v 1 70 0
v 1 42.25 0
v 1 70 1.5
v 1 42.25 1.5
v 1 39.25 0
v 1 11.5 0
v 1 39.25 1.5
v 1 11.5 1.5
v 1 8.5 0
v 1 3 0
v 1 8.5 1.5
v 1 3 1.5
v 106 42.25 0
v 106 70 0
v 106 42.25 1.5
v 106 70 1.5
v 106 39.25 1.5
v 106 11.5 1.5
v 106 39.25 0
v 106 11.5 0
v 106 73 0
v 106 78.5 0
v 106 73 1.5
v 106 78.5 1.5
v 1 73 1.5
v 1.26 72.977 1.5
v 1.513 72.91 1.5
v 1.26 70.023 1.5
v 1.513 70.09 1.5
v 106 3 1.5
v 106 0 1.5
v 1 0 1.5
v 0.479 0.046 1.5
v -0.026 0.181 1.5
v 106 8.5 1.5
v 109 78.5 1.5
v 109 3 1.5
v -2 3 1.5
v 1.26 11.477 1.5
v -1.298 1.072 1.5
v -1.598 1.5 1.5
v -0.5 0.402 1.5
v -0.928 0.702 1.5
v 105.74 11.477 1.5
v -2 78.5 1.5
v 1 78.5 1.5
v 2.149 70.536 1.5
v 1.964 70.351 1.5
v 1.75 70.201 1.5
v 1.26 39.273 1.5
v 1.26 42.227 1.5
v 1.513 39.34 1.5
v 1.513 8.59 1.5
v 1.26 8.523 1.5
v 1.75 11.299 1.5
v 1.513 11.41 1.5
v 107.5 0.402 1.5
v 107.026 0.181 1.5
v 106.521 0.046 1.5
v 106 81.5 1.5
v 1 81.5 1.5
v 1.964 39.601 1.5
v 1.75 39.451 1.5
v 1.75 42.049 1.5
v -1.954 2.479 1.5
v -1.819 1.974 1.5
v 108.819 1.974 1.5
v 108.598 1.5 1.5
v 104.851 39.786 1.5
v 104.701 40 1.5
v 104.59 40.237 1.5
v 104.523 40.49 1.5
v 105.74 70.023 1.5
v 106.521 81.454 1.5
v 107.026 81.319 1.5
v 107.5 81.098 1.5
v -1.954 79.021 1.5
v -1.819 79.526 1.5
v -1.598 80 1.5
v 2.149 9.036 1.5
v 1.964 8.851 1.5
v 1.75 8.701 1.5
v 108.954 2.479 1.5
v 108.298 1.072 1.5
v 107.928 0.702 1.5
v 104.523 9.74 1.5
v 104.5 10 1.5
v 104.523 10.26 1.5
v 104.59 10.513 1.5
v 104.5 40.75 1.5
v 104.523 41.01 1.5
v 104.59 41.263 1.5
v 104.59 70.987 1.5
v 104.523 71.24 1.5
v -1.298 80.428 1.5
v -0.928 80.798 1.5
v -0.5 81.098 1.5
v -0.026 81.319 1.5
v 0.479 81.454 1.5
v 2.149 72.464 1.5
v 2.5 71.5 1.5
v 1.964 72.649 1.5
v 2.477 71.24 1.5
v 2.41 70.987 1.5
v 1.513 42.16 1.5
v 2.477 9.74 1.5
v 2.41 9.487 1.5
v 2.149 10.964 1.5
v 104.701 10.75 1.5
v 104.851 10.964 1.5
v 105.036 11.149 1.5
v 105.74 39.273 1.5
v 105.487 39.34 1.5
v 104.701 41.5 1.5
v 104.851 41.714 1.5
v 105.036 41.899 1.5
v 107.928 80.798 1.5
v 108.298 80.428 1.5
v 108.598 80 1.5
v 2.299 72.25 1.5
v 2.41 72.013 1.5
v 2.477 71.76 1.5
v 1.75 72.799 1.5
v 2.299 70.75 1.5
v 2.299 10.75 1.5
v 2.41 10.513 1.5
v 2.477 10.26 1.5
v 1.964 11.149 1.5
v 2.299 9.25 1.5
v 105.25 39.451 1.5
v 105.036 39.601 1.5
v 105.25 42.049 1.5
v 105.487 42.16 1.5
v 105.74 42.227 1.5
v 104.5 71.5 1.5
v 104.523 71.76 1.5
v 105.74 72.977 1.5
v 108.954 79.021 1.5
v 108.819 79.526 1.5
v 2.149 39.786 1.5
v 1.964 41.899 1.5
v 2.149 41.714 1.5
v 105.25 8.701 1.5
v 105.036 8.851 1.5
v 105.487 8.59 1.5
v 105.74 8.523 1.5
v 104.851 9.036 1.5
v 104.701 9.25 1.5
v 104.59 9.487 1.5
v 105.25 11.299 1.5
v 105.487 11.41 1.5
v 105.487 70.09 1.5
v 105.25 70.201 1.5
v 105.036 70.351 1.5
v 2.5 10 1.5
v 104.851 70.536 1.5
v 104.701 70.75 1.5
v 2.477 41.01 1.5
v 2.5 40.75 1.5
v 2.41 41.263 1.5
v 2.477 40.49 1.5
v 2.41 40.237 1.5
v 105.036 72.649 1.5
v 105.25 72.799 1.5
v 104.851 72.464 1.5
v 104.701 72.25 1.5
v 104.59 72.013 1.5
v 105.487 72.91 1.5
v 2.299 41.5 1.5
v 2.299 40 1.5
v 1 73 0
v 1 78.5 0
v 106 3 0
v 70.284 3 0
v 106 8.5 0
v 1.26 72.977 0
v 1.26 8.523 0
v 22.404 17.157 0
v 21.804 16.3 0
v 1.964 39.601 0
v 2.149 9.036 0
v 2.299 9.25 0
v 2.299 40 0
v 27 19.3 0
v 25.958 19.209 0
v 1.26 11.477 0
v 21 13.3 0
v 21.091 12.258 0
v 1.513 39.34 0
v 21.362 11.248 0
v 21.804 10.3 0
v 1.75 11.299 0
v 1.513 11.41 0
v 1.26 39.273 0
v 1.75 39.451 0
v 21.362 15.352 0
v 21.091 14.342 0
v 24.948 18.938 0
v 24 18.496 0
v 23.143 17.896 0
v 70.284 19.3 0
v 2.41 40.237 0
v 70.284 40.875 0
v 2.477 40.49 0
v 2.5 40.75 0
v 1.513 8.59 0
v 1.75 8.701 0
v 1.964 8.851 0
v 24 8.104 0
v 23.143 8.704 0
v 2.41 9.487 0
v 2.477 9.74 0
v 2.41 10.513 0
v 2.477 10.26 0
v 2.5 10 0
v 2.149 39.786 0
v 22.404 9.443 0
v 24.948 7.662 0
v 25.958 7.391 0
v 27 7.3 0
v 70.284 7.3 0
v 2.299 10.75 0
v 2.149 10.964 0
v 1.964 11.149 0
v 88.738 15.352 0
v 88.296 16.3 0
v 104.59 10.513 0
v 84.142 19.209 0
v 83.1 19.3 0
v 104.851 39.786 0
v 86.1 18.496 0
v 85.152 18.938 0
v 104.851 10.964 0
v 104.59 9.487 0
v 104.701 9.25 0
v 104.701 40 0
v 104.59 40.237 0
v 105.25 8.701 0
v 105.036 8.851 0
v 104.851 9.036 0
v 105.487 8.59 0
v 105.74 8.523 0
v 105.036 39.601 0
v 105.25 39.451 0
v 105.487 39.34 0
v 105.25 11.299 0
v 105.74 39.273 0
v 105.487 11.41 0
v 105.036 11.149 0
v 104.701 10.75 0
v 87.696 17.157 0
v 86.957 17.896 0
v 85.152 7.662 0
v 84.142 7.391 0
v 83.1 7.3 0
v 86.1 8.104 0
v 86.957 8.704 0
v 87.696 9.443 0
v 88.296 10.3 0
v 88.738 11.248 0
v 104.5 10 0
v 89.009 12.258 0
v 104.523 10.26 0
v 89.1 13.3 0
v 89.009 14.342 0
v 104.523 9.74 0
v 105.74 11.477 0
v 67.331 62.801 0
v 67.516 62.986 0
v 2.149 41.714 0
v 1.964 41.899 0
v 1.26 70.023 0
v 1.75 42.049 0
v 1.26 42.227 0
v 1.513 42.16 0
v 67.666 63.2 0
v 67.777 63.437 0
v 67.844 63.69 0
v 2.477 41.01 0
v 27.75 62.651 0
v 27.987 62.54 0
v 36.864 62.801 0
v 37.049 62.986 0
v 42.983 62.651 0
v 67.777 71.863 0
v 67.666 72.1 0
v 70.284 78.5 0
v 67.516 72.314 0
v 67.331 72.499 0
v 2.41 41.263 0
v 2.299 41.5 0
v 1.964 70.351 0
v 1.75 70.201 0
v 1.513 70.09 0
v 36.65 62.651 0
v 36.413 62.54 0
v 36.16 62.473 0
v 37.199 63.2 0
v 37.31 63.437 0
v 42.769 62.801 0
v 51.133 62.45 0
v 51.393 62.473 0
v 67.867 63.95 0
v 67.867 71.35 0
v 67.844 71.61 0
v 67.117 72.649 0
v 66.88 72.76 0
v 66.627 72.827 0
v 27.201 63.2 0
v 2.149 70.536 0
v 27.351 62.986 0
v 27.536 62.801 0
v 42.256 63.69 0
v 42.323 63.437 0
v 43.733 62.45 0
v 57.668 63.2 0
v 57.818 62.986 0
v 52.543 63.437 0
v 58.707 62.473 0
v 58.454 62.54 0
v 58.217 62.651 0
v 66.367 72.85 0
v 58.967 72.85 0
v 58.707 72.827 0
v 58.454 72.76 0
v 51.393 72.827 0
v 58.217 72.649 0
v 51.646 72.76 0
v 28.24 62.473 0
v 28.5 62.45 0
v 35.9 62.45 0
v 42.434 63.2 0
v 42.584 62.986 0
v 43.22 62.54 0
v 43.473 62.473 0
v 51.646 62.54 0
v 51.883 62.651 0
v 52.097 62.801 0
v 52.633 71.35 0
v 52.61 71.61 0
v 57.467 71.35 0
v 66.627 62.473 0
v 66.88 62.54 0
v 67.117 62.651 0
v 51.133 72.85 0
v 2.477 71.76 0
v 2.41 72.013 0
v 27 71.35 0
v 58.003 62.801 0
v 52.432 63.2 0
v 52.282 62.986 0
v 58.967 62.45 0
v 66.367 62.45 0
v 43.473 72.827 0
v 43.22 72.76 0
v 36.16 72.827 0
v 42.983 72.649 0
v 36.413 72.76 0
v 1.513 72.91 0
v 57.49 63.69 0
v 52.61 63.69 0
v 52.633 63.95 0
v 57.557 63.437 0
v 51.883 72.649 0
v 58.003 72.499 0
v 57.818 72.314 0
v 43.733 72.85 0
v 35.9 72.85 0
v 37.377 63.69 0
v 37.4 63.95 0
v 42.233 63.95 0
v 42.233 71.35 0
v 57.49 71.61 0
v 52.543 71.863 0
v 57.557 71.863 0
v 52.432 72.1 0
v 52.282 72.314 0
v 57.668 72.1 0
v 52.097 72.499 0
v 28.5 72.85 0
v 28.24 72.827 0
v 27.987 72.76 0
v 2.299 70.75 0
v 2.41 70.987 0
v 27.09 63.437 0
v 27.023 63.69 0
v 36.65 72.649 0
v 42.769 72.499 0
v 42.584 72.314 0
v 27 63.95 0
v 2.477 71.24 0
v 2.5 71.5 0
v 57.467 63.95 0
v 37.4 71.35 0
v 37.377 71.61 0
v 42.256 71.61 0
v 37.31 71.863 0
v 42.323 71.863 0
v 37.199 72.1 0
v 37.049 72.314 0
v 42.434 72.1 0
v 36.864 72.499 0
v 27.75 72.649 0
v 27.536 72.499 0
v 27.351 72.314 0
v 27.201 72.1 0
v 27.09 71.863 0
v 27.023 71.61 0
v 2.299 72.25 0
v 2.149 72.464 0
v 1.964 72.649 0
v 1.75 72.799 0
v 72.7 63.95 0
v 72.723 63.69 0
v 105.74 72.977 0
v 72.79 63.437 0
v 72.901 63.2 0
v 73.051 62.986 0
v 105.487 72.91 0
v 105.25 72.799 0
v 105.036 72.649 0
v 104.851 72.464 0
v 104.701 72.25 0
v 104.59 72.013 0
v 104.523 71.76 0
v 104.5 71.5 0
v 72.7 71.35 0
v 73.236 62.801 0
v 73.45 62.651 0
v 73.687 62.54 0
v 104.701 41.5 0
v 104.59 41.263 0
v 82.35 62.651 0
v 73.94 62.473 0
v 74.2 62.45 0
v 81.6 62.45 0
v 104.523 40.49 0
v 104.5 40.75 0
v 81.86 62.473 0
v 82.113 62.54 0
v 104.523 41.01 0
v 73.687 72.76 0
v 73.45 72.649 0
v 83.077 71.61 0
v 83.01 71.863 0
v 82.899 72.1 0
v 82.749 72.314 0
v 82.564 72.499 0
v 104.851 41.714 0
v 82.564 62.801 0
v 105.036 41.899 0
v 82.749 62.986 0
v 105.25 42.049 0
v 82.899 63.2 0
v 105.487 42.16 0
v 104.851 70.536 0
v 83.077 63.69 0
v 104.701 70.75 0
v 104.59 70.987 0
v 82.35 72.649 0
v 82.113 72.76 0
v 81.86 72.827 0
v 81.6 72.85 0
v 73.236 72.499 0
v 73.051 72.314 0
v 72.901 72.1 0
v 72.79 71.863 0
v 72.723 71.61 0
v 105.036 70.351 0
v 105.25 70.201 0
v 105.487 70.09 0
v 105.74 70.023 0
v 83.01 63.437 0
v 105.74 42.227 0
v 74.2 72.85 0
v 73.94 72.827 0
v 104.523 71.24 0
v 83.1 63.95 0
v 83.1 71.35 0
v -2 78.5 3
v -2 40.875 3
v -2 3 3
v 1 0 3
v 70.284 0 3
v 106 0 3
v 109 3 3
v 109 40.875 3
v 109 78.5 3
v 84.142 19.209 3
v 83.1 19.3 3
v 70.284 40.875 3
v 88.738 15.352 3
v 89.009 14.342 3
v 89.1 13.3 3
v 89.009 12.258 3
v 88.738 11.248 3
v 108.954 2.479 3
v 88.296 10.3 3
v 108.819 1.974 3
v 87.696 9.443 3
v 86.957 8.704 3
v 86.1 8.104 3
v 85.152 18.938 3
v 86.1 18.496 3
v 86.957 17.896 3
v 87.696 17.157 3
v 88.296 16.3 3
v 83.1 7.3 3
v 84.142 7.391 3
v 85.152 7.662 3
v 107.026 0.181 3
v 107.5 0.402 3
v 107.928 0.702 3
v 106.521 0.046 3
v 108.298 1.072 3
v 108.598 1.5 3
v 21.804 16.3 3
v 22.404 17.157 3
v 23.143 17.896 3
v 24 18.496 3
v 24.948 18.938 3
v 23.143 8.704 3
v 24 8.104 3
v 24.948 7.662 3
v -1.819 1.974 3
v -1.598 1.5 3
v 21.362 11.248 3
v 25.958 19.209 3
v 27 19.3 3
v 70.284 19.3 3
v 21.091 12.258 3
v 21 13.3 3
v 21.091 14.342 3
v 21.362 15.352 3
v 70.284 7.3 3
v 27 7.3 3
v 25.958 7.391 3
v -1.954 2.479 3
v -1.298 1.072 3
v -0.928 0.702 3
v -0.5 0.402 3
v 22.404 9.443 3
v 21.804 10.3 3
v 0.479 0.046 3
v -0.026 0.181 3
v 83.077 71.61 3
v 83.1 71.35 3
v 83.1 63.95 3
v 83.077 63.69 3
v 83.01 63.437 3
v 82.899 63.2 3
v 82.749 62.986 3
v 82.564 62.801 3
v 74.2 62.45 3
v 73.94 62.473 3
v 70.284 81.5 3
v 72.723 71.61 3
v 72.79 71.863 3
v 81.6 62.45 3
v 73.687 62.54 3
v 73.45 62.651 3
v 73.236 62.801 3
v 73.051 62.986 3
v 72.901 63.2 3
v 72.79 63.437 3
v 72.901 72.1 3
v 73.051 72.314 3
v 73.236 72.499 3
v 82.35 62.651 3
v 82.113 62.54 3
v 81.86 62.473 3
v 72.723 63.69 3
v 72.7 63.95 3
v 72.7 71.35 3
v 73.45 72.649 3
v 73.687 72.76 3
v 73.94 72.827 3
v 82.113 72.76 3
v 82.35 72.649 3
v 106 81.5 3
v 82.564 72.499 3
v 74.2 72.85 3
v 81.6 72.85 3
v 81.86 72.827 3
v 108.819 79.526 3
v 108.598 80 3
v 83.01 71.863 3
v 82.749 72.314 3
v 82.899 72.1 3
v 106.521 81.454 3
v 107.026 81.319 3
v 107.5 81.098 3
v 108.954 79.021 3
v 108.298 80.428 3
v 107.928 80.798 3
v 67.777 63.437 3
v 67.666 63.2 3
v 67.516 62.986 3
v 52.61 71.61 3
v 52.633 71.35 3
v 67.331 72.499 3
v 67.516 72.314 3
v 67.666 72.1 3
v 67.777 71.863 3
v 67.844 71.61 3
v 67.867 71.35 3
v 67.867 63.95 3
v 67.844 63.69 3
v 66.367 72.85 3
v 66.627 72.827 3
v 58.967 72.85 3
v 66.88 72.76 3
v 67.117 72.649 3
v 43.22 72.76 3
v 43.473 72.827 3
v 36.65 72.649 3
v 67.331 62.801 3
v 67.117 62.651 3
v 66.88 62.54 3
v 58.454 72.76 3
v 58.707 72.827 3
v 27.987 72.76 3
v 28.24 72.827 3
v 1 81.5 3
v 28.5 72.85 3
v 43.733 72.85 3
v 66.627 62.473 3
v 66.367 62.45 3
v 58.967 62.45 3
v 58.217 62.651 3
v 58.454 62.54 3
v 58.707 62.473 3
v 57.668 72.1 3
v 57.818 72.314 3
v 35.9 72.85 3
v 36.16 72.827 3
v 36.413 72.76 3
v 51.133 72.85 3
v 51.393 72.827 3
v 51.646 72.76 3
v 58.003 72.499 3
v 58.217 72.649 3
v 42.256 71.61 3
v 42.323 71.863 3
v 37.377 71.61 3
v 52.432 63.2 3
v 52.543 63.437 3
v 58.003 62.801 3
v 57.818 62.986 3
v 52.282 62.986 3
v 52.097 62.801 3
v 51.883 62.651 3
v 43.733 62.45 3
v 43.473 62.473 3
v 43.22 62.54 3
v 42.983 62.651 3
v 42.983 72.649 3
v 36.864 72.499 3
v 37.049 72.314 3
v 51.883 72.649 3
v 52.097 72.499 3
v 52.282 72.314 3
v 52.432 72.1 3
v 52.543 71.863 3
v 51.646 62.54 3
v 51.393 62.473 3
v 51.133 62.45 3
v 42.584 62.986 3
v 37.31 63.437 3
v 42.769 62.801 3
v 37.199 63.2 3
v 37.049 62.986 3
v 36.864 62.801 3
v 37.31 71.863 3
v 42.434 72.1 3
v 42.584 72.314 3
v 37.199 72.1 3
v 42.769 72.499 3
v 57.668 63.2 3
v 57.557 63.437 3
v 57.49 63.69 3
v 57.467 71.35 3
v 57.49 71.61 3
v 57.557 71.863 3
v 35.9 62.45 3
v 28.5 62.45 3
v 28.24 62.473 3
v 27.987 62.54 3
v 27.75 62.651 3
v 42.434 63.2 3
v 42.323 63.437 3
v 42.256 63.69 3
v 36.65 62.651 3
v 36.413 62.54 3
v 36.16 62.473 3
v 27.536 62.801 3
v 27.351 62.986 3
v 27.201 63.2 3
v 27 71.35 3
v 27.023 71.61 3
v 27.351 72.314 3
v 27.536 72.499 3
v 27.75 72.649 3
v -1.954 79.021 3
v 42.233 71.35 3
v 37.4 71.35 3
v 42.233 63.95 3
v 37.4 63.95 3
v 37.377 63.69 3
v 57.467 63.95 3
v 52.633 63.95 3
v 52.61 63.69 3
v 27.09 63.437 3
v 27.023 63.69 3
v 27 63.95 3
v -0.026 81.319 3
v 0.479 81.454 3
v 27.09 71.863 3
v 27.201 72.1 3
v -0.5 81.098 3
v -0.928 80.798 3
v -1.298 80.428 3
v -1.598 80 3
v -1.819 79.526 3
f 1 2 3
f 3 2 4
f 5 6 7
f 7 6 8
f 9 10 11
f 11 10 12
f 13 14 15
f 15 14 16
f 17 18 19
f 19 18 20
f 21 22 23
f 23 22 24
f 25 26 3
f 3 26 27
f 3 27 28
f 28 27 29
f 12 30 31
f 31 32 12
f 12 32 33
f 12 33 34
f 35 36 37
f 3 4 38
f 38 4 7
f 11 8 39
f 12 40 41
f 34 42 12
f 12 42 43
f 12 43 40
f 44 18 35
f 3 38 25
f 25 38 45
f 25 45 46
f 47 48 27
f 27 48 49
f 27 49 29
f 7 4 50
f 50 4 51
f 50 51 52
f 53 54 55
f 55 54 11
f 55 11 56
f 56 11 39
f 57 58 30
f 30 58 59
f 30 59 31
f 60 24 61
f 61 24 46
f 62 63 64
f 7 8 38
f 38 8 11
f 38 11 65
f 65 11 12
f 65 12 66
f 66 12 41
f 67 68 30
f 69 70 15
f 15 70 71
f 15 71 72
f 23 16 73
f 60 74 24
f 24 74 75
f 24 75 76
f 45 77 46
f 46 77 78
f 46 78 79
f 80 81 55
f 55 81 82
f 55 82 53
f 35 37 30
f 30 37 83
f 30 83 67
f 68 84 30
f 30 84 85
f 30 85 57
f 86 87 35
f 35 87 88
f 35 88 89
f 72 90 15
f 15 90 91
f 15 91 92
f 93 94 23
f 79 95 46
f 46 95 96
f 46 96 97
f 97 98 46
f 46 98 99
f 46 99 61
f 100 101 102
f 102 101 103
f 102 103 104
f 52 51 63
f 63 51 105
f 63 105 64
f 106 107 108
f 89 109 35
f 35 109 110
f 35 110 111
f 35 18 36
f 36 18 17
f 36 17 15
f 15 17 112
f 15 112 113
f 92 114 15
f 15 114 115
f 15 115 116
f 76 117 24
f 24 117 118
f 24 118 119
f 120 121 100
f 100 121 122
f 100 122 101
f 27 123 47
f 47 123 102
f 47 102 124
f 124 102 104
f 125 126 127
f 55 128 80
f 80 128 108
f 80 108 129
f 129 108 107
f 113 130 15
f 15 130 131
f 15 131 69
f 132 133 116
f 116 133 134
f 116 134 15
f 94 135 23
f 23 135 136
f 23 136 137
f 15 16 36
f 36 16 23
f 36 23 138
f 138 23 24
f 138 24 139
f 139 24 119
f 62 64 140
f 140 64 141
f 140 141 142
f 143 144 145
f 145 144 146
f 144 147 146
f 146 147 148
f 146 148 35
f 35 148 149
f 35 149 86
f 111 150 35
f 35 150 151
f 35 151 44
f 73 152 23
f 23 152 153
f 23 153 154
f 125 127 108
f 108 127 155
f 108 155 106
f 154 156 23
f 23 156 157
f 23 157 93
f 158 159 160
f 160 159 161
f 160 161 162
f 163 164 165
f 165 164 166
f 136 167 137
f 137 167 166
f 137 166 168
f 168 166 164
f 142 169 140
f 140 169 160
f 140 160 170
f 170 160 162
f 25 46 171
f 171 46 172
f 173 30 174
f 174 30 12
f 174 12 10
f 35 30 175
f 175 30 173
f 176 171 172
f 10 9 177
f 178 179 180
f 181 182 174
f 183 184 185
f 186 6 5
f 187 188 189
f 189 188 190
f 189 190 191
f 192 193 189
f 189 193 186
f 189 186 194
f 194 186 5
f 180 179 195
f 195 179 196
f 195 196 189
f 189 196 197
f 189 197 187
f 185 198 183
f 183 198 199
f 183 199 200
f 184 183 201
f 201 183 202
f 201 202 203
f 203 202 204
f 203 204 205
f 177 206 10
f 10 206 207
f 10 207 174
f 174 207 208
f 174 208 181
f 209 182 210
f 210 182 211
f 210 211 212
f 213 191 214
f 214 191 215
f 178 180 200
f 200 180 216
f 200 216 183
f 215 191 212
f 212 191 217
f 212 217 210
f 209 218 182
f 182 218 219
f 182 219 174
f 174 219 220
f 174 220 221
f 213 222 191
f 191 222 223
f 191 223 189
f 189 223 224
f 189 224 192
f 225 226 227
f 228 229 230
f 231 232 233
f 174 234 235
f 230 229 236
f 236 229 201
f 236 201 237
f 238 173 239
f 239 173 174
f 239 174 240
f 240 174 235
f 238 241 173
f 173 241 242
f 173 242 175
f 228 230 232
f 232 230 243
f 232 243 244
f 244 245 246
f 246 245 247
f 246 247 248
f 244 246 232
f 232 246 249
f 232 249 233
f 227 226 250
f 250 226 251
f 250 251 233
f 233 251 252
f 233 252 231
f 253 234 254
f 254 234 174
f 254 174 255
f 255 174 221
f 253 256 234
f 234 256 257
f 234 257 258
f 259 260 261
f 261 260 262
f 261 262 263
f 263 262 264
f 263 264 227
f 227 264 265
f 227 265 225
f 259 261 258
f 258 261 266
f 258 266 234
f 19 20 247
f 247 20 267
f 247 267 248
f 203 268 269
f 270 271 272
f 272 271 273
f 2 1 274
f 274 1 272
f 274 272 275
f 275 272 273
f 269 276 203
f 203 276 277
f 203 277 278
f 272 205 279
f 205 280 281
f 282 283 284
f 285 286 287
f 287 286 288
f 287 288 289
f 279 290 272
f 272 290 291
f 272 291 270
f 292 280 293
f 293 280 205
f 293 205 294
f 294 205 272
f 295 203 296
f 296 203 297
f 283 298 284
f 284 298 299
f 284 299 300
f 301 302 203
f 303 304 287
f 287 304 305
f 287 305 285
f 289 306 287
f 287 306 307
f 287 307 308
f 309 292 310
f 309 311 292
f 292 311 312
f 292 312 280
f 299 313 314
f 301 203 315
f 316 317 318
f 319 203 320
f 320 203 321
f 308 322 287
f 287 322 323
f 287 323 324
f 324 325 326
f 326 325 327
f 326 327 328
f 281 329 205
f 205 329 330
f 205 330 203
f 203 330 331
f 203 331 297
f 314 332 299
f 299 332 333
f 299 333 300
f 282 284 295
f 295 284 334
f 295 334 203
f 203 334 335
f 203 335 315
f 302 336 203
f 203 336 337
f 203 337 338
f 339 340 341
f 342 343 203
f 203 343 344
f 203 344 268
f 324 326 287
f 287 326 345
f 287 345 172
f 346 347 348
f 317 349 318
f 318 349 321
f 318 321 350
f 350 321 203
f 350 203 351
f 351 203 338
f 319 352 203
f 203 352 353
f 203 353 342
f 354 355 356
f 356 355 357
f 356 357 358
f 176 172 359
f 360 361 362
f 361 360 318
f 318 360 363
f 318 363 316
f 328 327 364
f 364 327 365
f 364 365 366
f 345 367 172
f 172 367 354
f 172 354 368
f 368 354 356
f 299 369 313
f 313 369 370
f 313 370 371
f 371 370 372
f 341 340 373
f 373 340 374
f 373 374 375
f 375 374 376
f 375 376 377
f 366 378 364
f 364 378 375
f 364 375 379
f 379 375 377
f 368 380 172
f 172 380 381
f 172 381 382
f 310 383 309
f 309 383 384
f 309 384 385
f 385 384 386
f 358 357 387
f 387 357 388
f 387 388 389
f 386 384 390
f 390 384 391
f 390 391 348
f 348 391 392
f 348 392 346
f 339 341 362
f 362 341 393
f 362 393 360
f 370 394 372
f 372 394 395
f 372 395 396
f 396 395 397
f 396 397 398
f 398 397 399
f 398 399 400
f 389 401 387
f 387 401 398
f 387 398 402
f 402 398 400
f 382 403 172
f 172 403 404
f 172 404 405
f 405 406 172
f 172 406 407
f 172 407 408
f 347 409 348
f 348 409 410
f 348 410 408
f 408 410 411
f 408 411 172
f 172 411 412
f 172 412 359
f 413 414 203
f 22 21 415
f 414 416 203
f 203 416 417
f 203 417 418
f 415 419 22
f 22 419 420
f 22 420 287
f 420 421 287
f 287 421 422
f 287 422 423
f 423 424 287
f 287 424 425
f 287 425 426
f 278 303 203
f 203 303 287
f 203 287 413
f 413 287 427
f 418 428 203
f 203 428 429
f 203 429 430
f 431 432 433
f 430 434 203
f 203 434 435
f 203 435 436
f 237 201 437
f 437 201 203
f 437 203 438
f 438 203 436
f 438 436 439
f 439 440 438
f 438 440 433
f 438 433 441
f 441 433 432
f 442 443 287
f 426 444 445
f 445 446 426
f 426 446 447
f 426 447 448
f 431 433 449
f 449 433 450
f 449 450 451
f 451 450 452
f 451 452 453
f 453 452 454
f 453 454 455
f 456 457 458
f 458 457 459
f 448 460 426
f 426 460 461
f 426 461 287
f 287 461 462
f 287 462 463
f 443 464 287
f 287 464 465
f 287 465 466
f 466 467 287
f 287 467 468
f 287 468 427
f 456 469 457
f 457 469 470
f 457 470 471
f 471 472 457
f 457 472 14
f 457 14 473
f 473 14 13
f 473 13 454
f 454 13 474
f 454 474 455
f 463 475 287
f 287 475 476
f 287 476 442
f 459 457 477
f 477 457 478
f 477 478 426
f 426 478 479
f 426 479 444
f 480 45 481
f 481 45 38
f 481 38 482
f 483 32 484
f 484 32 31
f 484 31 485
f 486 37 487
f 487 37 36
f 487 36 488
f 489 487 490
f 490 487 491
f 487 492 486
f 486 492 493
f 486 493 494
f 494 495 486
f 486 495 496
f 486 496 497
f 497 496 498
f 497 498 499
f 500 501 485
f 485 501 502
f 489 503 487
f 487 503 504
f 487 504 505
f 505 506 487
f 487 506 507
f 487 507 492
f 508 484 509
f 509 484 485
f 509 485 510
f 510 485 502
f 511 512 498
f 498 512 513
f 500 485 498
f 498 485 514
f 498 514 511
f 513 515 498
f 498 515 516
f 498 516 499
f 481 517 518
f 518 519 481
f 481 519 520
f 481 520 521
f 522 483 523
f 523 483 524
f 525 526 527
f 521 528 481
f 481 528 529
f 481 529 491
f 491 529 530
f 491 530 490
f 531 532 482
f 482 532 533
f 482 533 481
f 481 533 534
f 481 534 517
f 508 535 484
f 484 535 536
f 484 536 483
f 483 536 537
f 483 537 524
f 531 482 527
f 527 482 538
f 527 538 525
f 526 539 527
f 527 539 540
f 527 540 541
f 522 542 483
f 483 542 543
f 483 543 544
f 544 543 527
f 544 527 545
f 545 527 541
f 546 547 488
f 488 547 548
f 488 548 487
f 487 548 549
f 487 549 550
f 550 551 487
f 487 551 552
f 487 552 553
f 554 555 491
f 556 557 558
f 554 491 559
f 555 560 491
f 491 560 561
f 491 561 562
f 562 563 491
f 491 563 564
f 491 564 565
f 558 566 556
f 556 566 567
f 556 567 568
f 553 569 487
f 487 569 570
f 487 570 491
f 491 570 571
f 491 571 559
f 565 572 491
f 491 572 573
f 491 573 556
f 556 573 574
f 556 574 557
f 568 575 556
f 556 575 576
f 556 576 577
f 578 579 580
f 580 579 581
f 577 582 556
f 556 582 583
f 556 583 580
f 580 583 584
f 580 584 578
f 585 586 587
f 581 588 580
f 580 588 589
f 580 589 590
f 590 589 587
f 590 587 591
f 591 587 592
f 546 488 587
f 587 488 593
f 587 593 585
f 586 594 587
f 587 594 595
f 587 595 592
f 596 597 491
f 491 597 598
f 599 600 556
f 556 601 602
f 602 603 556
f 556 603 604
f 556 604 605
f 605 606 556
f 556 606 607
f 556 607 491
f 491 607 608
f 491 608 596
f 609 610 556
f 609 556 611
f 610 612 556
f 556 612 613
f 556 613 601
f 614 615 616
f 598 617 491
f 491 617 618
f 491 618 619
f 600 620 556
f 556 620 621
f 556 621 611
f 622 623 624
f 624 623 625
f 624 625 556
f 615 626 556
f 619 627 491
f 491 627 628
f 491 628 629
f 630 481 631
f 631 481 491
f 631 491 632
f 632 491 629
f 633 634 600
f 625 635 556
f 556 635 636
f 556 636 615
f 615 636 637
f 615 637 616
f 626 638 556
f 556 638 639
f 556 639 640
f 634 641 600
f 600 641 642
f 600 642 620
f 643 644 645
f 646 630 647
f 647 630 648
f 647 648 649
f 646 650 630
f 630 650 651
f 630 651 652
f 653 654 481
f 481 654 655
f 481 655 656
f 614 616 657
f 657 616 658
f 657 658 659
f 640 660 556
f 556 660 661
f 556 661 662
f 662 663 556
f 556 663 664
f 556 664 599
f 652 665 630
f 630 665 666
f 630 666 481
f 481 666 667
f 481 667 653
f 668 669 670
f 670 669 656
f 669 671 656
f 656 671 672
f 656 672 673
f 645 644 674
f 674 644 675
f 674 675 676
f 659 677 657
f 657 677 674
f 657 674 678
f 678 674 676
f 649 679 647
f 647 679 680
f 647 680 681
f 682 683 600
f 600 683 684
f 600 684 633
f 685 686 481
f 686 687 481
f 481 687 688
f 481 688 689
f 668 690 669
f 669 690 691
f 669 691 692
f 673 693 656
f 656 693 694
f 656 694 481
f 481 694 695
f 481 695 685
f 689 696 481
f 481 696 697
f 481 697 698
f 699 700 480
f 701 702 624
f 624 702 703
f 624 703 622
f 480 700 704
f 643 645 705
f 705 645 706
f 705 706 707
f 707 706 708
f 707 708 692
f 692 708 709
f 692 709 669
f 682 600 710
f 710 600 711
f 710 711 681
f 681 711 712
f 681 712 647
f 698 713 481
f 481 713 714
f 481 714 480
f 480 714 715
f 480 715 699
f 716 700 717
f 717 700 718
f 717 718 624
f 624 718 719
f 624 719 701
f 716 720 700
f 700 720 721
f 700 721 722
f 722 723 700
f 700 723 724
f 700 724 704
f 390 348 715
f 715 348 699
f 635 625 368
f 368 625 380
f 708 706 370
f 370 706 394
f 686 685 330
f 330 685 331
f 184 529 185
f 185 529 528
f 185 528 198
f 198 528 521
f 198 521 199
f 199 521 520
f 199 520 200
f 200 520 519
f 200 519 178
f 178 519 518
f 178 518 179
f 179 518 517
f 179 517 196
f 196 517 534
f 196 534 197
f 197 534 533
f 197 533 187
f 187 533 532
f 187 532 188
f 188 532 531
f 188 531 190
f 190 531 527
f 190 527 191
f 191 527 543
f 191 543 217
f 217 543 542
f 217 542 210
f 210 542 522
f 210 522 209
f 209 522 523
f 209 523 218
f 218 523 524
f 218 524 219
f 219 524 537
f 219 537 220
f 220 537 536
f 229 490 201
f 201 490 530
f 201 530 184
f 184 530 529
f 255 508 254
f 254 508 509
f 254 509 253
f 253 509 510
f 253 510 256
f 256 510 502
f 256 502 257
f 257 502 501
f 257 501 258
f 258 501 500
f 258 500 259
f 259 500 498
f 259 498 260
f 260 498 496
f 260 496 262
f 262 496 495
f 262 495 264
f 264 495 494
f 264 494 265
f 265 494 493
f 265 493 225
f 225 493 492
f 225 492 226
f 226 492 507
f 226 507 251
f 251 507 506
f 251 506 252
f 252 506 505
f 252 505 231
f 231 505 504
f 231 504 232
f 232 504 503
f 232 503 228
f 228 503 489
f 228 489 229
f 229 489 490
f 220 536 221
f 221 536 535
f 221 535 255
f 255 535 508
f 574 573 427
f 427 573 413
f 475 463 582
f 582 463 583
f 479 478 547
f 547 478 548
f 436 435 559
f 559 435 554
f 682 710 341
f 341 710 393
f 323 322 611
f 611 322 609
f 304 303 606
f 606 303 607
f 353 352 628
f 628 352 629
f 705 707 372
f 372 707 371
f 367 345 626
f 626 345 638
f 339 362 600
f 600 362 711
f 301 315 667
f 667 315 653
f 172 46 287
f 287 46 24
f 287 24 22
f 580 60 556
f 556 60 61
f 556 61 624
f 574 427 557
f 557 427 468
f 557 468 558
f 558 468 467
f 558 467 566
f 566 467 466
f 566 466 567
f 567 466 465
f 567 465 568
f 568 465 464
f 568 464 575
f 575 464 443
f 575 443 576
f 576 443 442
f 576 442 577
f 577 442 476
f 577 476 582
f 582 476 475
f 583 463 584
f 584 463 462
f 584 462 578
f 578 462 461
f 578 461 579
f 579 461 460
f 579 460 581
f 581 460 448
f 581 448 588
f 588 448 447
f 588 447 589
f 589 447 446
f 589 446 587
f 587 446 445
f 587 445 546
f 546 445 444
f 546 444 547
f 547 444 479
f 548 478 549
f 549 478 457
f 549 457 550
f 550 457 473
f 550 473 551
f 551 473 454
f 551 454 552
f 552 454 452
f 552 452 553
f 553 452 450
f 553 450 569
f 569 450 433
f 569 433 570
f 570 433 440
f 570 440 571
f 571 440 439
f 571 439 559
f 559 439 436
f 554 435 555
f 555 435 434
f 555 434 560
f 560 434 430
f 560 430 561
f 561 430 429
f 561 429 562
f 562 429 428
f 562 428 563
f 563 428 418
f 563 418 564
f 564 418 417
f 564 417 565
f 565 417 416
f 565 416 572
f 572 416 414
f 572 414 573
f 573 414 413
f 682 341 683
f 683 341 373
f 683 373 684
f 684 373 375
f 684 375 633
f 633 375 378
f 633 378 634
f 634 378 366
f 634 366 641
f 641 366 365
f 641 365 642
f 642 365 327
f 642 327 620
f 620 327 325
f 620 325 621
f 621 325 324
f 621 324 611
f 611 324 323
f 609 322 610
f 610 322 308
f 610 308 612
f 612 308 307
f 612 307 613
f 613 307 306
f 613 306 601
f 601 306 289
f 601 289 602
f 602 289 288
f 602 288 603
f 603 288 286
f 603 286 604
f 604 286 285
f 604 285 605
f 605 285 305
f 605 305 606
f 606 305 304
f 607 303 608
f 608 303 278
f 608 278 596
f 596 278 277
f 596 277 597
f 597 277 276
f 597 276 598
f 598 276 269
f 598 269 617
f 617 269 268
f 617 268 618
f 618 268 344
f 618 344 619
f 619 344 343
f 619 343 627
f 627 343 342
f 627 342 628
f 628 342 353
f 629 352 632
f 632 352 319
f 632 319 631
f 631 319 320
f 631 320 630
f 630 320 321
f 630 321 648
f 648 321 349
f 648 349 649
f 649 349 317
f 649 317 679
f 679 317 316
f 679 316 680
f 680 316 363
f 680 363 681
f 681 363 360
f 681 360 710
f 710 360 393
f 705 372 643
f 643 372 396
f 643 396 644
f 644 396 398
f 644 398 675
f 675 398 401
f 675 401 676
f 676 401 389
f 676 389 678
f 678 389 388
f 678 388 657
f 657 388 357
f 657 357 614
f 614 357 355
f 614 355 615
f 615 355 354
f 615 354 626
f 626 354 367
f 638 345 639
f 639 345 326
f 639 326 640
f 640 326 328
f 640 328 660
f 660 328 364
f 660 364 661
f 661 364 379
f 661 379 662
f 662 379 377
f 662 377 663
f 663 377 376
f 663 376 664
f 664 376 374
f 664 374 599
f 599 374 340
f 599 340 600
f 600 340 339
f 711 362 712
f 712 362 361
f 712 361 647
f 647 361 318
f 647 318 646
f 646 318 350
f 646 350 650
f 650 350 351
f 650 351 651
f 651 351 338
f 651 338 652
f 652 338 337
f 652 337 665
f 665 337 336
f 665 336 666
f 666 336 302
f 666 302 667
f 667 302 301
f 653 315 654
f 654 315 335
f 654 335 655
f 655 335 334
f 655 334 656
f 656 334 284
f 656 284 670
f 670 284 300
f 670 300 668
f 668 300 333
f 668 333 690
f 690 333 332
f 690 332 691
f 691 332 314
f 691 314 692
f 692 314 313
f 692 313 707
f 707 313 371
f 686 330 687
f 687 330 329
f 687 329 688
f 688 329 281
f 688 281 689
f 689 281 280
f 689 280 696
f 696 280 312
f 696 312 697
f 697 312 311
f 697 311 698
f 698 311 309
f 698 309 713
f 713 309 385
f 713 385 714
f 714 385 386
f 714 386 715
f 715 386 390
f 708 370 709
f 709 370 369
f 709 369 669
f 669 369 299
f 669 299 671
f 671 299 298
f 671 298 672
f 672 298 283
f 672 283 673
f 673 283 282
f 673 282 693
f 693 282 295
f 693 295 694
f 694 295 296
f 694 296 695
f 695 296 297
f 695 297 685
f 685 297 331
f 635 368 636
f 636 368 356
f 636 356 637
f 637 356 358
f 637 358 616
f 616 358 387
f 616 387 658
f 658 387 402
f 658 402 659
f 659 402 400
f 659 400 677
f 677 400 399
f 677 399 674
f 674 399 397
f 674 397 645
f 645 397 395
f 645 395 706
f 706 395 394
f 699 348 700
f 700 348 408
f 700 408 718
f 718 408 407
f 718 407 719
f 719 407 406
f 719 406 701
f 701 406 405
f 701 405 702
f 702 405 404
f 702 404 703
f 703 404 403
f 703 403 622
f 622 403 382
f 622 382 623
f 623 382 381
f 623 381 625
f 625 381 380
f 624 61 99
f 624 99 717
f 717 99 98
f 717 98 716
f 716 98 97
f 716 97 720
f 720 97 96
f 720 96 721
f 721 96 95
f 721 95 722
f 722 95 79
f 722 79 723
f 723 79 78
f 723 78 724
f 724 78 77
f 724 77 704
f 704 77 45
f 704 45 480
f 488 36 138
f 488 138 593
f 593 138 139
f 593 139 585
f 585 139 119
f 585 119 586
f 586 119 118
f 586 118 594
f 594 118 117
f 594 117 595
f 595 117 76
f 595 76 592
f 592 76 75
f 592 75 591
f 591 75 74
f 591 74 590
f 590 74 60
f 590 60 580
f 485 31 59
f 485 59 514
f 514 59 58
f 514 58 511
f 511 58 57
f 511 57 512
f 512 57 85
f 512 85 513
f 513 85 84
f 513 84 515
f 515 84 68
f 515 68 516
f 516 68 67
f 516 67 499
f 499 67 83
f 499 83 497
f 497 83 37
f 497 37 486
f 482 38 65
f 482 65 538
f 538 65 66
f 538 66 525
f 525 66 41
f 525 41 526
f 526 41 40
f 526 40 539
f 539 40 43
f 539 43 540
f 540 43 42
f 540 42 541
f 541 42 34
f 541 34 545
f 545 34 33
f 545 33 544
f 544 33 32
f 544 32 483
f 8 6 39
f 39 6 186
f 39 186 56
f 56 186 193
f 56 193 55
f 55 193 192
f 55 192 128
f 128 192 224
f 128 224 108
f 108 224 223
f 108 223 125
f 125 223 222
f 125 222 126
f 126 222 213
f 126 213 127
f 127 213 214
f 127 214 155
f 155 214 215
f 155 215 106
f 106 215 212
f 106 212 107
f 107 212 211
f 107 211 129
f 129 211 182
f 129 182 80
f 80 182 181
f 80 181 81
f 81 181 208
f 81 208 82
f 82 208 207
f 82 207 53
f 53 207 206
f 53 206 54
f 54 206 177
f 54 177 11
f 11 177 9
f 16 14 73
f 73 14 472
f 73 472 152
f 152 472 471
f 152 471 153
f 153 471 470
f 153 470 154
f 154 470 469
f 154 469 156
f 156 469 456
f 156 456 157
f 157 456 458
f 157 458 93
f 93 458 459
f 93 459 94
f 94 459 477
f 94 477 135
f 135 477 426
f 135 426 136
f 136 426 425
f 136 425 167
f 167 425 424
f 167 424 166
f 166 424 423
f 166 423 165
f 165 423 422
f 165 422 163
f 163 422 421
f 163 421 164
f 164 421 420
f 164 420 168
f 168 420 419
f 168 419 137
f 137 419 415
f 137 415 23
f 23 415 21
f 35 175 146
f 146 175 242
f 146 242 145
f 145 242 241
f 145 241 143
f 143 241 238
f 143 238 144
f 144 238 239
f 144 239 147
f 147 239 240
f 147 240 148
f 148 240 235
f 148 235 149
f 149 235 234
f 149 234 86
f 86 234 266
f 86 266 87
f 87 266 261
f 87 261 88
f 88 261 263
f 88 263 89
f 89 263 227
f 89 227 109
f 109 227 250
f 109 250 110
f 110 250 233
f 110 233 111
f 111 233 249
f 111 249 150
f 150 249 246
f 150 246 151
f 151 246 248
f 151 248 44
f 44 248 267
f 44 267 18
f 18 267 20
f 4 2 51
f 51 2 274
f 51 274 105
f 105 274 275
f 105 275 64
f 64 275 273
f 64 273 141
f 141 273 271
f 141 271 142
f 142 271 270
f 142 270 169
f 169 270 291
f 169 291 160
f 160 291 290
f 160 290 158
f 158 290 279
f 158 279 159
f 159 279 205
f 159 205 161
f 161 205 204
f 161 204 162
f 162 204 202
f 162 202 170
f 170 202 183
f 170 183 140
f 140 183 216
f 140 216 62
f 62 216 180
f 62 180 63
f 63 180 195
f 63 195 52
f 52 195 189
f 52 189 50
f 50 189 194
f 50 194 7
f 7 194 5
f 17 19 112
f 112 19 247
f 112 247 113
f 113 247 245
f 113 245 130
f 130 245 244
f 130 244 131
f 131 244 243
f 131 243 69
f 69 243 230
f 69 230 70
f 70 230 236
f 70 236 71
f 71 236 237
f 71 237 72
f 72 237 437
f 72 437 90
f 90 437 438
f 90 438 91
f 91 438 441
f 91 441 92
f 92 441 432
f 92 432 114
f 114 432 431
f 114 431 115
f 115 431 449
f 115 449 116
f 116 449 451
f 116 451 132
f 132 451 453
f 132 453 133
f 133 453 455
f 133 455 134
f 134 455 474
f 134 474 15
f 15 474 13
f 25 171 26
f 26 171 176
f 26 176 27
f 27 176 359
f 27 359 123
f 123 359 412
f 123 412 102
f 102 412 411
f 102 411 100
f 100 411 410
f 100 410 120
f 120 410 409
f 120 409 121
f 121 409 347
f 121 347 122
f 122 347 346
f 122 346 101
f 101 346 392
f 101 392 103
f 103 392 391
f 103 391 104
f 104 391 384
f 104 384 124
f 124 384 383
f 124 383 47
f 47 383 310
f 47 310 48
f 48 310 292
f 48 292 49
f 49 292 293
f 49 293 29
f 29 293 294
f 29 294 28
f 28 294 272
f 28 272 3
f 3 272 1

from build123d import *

# Parameters (mm, degrees)
SKETCH_1_W                                     = 105
SKETCH_1_H                                     = 74
EXTRUDE_1_DEPTH                                = 3
EXTRUDE_START                                  = 1.5
SKETCH_2_W                                     = 111
SKETCH_2_H                                     = 80
EXTRUDE_2_DEPTH                                = 1.5
SKETCH_3_W                                     = 10.4
SKETCH_3_H                                     = 10.4
CUT_EXTRUDE_1_DEPTH                            = 5
SKETCH_4_W                                     = 105
SKETCH_4_H                                     = 1.5
TOP_REAR_INNER_EXTENSION_1P5MM_DEPTH           = 3
TOP_REAR_OUTER_SKIN_EXTENSION_1P5MM_START      = 1.5
SKETCH_5_W                                     = 111
SKETCH_5_H                                     = 1.5
TOP_REAR_OUTER_SKIN_EXTENSION_1P5MM_DEPTH      = 1.5
TOOL_D3_R1P5_BUTTON_CORNERS_R                  = 1.5
TOOL_D3_R3_TOP_OUTER_CONTOUR_R                 = 3
SKETCH_6_R                                     = 1.5
TOP_PLANAR_EDGE_SEMICIRCLE_POCKETS_D3_DE_DEPTH = 1.5


with BuildPart() as part:
    # Эскиз1 → Бобышка-Вытянуть1 (new body)
    with BuildSketch(Plane.XY):
        with Locations((53.5, 40)):
            Rectangle(SKETCH_1_W, SKETCH_1_H)
    extrude(amount=EXTRUDE_1_DEPTH)

    # Эскиз2 → Бобышка-Вытянуть2 (add)
    with BuildSketch(Plane.XY.offset(EXTRUDE_START)):
        with Locations((53.5, 40)):
            Rectangle(SKETCH_2_W, SKETCH_2_H)
    extrude(amount=EXTRUDE_2_DEPTH)

    # Эскиз3 → Вырез-Вытянуть1 (cut)
    with BuildSketch(Plane(origin=(0.75, 0, 3), x_dir=(1, 0, 0), z_dir=(0, 0, 1))):
        with Locations((31.45, 67.65)):
            Rectangle(SKETCH_3_W, SKETCH_3_H)
        with Locations((46.683, 67.65)):
            Rectangle(SKETCH_3_W, SKETCH_3_H)
        with Locations((61.917, 67.65)):
            Rectangle(SKETCH_3_W, SKETCH_3_H)
        with Locations((77.15, 67.65)):
            Rectangle(SKETCH_3_W, SKETCH_3_H)
        with BuildLine():
            Line((26.25, 19.3), (82.35, 19.3))
            ThreePointArc((82.35, 19.3), (88.35, 13.3), (82.35, 7.3))
            Line((82.35, 7.3), (26.25, 7.3))
            ThreePointArc((26.25, 7.3), (20.25, 13.3), (26.25, 19.3))
        make_face()
    extrude(amount=-CUT_EXTRUDE_1_DEPTH, mode=Mode.SUBTRACT)

    # Эскиз4 → top_rear_inner_extension_1p5mm (add)
    with BuildSketch(Plane.XY):
        with Locations((53.5, 77.75)):
            Rectangle(SKETCH_4_W, SKETCH_4_H)
    extrude(amount=TOP_REAR_INNER_EXTENSION_1P5MM_DEPTH)

    # Эскиз5 → top_rear_outer_skin_extension_1p5mm (add)
    with BuildSketch(Plane.XY.offset(TOP_REAR_OUTER_SKIN_EXTENSION_1P5MM_START)):
        with Locations((53.5, 80.75)):
            Rectangle(SKETCH_5_W, SKETCH_5_H)
    extrude(amount=TOP_REAR_OUTER_SKIN_EXTENSION_1P5MM_DEPTH)

    # tool_D3_R1p5_button_corners
    tool_d3_r1p5_button_corners_edges = [part.edges().sort_by_distance(p)[0] for p in [
        (42.233, 62.45, 1.5),
        (42.233, 72.85, 1.5),
        (52.633, 72.85, 1.5),
        (52.633, 62.45, 1.5),
        (57.467, 62.45, 1.5),
        (57.467, 72.85, 1.5),
        (67.867, 72.85, 1.5),
        (67.867, 62.45, 1.5),
        (72.7, 62.45, 1.5),
        (72.7, 72.85, 1.5),
        (83.1, 72.85, 1.5),
        (83.1, 62.45, 1.5),
        (27, 62.45, 1.5),
        (27, 72.85, 1.5),
        (37.4, 72.85, 1.5),
        (37.4, 62.45, 1.5),
    ]]
    fillet(tool_d3_r1p5_button_corners_edges, radius=TOOL_D3_R1P5_BUTTON_CORNERS_R)

    # tool_D3_R3_top_outer_contour
    tool_d3_r3_top_outer_contour_edges = [part.edges().sort_by_distance(p)[0] for p in [
        (-2, 81.5, 2.25),
        (109, 81.5, 2.25),
        (-2, 0, 2.25),
        (109, 0, 2.25),
    ]]
    fillet(tool_d3_r3_top_outer_contour_edges, radius=TOOL_D3_R3_TOP_OUTER_CONTOUR_R)

    # Эскиз6 → top_planar_edge_semicircle_pockets_D3_depth1p5_6x (cut)
    with BuildSketch(Plane(origin=(0, 0, 0), x_dir=(-1, 0, 0), z_dir=(0, 0, -1))):
        with Locations((-1, 10)):
            Circle(SKETCH_6_R)
        with Locations((-106, 10)):
            Circle(SKETCH_6_R)
        with Locations((-1, 40.75)):
            Circle(SKETCH_6_R)
        with Locations((-106, 40.75)):
            Circle(SKETCH_6_R)
        with Locations((-1, 71.5)):
            Circle(SKETCH_6_R)
        with Locations((-106, 71.5)):
            Circle(SKETCH_6_R)
    extrude(amount=-TOP_PLANAR_EDGE_SEMICIRCLE_POCKETS_D3_DE_DEPTH, mode=Mode.SUBTRACT)


solid = part.part
